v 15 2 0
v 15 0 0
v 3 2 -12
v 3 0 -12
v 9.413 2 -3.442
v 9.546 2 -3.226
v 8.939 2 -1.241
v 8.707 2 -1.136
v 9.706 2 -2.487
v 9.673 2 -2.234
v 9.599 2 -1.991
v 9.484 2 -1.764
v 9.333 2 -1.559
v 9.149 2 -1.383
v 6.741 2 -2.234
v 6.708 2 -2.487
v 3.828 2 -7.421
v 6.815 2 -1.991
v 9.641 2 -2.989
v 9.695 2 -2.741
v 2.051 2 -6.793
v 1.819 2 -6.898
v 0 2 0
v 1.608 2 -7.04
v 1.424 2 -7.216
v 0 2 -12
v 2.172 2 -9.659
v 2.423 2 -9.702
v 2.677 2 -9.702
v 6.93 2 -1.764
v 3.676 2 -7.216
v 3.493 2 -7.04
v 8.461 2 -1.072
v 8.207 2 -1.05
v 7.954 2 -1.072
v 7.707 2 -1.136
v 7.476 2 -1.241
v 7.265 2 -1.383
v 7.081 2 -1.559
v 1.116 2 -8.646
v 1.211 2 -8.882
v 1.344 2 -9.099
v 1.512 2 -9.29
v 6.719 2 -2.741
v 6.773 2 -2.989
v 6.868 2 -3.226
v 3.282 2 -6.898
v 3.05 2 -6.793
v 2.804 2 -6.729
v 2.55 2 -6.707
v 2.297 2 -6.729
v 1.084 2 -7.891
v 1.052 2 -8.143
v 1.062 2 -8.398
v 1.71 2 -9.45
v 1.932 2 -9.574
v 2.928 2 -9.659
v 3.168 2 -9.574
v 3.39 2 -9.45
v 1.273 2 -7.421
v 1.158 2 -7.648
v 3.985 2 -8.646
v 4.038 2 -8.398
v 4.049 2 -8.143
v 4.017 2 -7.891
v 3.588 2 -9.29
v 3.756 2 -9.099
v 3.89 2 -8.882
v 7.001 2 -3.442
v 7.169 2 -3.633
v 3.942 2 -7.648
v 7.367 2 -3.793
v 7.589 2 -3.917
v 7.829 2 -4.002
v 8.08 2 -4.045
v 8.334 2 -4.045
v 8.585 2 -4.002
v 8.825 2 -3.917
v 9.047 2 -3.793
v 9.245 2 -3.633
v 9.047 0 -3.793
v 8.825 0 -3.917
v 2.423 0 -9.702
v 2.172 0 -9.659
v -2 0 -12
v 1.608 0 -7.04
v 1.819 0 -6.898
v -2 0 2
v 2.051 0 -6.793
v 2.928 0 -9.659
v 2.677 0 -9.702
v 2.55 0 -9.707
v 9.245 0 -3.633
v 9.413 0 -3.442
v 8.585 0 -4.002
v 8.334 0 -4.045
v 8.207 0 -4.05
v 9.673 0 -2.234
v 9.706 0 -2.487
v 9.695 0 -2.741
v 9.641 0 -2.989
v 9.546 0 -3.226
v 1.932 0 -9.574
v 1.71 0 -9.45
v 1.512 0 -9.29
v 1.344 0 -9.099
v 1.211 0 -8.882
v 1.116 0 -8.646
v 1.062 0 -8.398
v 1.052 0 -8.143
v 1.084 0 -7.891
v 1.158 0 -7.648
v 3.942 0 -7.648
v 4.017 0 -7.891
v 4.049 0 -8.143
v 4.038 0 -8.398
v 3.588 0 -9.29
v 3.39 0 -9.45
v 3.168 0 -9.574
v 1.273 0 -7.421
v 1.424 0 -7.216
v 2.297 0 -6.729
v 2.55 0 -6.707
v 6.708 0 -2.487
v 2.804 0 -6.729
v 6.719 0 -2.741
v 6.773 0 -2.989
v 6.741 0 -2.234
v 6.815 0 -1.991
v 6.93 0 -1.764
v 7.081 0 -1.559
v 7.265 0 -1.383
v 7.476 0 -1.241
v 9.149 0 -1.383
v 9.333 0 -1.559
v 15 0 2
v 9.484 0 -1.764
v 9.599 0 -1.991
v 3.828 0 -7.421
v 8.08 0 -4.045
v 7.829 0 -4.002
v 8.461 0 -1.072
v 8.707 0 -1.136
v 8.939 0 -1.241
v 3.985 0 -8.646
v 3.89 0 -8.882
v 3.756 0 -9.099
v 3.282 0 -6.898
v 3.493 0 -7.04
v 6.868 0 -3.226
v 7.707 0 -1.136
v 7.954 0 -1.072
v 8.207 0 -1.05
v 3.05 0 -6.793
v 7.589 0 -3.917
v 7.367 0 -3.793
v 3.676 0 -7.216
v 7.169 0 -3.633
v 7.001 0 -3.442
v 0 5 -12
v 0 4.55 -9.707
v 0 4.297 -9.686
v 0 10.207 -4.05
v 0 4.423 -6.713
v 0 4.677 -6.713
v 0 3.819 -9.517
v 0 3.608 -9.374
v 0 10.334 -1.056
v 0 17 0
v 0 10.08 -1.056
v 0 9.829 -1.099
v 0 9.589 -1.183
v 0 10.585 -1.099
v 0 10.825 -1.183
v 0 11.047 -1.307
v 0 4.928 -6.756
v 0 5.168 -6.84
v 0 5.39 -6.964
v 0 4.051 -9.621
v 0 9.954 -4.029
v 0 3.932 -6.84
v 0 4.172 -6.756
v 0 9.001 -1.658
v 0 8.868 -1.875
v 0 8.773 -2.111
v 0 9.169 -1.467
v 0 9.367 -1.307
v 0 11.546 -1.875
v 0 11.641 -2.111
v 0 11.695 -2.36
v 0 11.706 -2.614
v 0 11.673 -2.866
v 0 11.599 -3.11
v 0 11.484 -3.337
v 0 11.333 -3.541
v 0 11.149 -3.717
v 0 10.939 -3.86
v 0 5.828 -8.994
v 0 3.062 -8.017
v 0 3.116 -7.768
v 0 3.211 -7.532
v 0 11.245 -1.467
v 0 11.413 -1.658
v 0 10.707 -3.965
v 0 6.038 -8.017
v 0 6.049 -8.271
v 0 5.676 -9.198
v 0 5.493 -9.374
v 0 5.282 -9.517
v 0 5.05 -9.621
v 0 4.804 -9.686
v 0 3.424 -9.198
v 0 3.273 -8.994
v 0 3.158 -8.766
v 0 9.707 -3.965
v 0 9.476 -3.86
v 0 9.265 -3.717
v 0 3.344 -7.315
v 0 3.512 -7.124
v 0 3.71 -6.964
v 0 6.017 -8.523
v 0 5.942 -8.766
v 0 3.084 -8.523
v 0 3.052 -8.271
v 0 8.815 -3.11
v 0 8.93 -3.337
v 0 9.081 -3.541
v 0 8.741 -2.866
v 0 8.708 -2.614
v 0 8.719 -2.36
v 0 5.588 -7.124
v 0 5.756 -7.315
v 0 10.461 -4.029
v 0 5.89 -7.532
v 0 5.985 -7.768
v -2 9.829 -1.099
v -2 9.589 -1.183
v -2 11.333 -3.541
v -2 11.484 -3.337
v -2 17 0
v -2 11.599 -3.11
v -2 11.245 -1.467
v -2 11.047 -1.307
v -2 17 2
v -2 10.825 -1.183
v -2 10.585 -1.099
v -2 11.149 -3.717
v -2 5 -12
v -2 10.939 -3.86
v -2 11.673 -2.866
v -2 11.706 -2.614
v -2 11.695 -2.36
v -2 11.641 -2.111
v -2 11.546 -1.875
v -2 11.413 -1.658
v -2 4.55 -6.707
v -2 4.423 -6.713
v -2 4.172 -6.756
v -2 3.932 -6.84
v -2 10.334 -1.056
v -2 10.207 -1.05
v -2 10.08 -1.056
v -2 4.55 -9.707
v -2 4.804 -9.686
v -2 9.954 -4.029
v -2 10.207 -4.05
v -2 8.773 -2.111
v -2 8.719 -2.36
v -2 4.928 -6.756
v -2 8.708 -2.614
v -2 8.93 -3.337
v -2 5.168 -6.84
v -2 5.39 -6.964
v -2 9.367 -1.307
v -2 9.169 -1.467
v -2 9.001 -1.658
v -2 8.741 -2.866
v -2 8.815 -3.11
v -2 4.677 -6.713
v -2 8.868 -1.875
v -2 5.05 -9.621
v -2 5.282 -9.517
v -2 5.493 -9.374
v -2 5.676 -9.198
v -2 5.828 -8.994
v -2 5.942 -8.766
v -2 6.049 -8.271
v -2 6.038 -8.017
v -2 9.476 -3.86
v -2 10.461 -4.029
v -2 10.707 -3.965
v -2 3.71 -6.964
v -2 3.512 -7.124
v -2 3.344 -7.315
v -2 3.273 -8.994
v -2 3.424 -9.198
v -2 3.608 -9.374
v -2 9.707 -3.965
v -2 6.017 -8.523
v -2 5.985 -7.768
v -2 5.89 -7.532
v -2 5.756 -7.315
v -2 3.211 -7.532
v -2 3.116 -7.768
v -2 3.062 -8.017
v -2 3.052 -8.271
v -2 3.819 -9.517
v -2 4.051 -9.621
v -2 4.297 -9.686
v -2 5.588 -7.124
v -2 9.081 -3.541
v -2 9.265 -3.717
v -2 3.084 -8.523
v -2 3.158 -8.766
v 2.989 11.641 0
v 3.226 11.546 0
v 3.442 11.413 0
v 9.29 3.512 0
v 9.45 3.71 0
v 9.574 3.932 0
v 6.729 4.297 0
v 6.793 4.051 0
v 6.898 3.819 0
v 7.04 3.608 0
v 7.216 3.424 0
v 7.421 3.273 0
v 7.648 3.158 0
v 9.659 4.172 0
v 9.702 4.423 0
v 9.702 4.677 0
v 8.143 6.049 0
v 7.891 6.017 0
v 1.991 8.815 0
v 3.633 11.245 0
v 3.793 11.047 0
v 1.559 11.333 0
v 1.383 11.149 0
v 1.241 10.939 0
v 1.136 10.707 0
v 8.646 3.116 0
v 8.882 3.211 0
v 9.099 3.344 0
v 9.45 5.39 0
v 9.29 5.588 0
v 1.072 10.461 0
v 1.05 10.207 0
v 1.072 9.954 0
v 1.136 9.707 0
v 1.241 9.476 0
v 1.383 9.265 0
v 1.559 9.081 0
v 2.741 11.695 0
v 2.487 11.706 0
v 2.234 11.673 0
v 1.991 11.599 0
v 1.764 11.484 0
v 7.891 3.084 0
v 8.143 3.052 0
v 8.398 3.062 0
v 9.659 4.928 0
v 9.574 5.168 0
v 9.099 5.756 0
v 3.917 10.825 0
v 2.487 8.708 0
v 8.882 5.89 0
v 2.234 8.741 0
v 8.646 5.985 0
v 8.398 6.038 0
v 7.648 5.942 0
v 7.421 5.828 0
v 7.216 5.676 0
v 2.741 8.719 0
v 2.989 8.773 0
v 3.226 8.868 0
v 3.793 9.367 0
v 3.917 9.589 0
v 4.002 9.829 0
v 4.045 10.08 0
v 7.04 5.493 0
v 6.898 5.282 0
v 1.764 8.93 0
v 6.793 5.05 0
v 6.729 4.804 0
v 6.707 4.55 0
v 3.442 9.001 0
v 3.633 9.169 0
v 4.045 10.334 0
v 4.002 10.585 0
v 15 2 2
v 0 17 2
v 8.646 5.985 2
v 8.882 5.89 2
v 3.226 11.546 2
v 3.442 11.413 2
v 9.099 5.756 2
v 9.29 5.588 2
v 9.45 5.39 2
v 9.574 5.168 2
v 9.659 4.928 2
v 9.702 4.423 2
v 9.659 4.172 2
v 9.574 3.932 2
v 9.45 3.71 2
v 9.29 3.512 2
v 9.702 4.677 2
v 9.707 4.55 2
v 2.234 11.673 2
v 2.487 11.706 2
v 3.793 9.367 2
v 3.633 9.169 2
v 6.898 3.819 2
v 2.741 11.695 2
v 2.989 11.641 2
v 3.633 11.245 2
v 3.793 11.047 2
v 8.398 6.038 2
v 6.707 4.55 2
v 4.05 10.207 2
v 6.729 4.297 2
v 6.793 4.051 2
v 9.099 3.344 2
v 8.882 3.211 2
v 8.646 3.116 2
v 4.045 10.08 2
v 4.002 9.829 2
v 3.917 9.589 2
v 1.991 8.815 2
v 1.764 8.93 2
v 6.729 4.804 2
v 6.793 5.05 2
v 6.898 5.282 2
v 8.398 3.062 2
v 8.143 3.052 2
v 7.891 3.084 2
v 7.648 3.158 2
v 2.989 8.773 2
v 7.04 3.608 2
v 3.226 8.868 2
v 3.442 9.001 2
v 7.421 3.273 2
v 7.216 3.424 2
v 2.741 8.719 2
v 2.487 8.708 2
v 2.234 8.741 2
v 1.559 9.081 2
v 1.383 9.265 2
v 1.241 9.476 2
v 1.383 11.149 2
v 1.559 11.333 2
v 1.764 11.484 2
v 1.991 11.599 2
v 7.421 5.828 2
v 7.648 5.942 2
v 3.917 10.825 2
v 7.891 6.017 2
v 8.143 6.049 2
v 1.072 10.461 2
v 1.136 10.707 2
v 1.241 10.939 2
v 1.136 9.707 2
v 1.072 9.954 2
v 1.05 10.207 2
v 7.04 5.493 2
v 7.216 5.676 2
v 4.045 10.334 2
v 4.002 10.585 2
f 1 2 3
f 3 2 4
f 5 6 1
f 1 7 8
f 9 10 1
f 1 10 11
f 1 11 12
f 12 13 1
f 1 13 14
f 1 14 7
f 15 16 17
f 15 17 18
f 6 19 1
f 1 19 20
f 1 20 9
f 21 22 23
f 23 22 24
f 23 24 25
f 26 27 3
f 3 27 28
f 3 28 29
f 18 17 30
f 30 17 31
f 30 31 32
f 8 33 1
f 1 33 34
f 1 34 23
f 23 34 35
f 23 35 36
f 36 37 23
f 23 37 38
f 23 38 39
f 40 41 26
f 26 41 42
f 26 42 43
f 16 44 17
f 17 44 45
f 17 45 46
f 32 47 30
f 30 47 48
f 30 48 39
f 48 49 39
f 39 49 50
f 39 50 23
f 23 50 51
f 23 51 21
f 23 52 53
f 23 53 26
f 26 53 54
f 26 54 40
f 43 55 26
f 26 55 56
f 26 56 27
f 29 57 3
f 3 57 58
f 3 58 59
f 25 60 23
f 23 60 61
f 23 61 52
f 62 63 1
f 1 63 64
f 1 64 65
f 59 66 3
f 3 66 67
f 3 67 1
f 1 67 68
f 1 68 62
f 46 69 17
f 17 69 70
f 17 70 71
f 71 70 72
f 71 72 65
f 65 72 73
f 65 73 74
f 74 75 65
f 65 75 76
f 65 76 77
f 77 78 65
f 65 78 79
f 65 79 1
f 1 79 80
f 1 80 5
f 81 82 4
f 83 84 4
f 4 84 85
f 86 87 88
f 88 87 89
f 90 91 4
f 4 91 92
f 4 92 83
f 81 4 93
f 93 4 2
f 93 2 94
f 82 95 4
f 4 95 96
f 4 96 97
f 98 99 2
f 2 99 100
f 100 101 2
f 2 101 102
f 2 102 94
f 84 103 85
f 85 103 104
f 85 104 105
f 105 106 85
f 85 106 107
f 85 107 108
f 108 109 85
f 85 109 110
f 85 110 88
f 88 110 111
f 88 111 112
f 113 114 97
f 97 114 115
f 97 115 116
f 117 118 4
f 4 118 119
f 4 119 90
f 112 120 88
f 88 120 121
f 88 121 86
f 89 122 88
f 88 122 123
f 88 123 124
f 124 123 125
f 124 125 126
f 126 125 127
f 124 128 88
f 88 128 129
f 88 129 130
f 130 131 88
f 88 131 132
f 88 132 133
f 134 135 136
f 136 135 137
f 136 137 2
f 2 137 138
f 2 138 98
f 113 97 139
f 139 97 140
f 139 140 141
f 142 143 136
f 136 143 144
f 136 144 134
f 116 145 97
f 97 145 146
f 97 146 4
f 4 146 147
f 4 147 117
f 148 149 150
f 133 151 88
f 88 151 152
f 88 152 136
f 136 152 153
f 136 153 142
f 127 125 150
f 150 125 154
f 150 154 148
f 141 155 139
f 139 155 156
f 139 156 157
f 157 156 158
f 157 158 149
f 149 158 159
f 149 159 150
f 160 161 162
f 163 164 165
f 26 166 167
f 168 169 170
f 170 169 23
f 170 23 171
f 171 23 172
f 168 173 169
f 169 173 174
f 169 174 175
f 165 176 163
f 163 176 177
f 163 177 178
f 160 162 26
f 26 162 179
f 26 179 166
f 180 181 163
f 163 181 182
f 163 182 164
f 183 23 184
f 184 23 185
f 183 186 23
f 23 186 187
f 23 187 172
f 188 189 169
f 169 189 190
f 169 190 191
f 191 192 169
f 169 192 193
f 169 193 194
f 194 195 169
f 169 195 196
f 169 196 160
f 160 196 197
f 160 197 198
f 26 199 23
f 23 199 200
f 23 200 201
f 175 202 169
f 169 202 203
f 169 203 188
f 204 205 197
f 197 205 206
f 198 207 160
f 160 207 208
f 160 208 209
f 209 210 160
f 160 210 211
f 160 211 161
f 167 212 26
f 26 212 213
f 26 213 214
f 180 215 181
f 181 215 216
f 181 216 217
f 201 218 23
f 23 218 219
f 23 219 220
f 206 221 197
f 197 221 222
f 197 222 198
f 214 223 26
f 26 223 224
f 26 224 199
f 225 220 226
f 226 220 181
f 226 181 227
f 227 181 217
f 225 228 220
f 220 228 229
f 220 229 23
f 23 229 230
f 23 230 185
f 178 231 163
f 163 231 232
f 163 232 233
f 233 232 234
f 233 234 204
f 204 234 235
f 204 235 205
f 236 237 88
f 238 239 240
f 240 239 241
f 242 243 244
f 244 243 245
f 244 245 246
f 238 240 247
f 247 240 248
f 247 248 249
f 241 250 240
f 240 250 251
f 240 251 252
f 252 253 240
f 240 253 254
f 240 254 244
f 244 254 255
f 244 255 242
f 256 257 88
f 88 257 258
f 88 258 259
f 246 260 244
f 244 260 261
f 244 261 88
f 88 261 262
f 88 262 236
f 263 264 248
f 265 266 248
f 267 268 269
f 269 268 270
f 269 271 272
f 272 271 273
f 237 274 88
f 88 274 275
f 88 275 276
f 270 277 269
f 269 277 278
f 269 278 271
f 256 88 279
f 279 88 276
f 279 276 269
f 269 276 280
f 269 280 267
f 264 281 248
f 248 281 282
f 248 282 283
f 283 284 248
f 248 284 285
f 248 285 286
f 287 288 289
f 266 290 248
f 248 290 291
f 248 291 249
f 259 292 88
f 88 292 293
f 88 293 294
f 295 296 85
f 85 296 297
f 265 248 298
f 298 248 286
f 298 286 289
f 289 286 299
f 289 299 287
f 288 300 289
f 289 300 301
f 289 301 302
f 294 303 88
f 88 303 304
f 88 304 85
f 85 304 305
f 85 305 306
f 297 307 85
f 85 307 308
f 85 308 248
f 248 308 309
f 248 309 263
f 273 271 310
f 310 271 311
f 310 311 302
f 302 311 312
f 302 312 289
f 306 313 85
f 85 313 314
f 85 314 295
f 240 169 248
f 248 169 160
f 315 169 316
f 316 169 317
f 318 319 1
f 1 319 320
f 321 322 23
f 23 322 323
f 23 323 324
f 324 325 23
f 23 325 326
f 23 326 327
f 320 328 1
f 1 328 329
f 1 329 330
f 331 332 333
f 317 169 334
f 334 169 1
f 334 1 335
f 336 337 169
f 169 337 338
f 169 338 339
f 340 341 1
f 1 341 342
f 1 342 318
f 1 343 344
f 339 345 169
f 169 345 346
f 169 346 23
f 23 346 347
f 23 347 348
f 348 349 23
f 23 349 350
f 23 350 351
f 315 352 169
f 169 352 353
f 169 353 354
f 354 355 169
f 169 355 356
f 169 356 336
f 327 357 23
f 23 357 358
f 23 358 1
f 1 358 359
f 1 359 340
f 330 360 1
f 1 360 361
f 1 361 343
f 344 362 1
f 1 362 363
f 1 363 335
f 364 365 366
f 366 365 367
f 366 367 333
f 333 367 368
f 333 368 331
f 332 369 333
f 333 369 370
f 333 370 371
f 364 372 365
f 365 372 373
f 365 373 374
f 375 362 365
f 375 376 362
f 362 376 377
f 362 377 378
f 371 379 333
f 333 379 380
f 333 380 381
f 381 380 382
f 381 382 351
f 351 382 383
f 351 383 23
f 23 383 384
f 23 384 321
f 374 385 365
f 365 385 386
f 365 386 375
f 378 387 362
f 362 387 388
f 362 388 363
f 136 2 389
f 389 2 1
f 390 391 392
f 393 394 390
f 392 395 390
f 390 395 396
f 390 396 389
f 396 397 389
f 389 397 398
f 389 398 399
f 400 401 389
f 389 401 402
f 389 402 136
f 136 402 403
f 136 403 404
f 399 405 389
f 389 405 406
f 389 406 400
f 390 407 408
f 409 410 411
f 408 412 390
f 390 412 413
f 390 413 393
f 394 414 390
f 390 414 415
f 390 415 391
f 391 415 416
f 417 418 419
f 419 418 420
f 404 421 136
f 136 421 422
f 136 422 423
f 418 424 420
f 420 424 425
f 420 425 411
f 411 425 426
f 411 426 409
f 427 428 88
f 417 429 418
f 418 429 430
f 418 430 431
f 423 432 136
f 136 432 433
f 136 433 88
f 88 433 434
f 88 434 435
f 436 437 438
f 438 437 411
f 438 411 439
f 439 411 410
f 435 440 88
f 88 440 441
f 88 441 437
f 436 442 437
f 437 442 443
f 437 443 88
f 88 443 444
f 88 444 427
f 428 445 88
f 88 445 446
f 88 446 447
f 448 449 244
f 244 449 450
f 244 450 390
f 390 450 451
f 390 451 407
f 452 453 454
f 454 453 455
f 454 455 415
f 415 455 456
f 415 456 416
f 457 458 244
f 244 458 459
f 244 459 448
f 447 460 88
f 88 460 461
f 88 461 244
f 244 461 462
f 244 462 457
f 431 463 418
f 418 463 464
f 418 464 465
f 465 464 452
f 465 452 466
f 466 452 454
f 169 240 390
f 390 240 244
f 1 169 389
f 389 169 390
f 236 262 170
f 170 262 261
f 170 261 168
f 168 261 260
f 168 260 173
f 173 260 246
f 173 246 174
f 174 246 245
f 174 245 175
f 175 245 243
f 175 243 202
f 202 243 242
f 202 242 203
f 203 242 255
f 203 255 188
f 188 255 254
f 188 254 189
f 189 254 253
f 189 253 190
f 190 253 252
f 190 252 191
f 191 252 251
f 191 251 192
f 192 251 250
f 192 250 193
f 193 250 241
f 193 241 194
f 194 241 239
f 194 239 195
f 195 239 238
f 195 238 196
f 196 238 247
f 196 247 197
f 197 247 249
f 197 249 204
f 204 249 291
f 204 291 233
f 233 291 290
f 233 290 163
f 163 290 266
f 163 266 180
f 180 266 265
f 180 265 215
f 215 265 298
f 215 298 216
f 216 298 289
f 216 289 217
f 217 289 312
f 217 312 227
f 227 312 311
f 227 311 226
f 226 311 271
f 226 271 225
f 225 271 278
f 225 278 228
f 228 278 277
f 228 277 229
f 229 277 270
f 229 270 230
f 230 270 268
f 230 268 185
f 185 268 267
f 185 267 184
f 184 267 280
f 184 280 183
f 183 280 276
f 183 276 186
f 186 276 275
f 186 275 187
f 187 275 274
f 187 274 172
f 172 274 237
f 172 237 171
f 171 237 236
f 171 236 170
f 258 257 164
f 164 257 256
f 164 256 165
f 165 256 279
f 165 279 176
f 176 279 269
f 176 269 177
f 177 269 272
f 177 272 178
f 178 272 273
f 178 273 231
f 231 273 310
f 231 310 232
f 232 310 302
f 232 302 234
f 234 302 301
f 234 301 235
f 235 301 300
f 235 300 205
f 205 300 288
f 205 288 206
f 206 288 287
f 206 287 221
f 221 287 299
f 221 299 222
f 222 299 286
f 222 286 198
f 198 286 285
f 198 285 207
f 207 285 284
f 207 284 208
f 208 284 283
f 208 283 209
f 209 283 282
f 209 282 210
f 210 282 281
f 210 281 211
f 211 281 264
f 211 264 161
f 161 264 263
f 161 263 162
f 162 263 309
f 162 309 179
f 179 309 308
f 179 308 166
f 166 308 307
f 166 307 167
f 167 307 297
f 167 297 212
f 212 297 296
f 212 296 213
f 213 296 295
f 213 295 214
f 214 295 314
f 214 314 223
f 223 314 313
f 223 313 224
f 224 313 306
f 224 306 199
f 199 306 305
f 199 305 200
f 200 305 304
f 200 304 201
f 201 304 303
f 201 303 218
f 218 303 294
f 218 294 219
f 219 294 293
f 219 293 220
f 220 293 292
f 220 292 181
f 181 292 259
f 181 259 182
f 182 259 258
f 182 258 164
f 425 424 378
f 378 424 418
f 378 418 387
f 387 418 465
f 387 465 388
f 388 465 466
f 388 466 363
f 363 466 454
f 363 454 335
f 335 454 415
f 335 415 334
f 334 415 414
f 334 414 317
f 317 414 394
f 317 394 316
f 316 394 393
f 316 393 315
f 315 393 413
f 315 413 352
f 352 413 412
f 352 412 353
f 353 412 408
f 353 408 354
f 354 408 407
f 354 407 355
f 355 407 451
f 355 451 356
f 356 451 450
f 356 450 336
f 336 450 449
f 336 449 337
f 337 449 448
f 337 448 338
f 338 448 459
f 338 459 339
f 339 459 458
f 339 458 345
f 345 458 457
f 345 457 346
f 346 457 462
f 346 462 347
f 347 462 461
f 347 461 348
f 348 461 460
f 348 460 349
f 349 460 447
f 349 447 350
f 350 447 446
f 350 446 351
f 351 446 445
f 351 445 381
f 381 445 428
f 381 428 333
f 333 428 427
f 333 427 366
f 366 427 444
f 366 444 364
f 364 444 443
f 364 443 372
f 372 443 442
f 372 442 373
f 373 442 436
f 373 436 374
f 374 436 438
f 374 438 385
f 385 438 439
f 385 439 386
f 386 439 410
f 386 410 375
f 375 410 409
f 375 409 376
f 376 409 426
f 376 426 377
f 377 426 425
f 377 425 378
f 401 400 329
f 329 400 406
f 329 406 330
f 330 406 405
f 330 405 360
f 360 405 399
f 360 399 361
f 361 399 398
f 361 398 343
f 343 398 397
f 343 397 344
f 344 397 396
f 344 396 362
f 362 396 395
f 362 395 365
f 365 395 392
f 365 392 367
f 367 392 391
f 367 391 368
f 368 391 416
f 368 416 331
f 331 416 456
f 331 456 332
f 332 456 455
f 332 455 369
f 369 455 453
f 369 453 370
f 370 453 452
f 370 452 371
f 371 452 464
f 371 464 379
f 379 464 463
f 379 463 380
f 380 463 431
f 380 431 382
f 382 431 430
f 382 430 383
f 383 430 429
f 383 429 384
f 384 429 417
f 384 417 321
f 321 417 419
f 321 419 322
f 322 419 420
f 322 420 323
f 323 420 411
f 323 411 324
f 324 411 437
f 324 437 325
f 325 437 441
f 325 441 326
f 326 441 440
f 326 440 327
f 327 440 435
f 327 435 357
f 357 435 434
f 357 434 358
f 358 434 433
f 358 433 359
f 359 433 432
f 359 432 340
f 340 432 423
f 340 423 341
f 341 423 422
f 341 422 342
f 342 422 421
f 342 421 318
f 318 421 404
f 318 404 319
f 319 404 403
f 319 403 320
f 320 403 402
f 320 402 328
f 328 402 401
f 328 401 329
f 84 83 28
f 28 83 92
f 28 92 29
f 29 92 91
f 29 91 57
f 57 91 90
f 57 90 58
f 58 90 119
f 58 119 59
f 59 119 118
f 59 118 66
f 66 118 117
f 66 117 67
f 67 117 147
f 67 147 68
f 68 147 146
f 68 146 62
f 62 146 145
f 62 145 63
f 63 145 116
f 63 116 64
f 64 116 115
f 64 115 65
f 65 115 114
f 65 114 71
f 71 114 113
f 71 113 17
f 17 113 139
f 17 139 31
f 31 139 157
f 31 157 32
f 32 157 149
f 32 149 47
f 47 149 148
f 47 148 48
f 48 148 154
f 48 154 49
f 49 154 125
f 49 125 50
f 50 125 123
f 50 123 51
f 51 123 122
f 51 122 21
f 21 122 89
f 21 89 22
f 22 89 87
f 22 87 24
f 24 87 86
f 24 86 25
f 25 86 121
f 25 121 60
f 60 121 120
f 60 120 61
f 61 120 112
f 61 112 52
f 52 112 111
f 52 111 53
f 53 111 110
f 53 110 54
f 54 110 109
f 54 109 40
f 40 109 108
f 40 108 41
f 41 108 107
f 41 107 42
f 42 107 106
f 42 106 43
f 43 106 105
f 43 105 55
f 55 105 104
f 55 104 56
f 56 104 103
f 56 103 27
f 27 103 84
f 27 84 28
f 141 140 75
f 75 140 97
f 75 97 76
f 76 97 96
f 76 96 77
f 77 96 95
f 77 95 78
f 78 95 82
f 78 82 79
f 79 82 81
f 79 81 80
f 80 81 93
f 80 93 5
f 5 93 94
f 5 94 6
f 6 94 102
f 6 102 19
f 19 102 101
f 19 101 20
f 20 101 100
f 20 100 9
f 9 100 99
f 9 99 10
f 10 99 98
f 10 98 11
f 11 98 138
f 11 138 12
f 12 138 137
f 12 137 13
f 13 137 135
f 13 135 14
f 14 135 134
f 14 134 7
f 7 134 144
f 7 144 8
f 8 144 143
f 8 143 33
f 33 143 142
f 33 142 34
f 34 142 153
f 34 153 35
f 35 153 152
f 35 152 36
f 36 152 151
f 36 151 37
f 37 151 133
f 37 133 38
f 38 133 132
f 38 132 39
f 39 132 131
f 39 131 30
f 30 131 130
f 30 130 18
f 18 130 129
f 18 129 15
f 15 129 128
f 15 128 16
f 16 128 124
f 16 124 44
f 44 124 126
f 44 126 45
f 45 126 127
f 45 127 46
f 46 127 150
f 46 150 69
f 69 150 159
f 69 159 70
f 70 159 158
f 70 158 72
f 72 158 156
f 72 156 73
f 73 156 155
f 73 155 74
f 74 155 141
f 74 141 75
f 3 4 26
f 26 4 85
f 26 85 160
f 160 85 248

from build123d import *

# Parameters (mm, degrees)
BOSS_EXTRUDE1_DEPTH      = 2
BOSS_EXTRUDE2_DEPTH      = 15
BOSS_EXTRUDE2_DEPTH_BACK = 2
CUT_EXTRUDE1_DEPTH       = 15
CUT_EXTRUDE2_DEPTH       = 15
SKETCH5_R                = 1.5
CUT_EXTRUDE3_DEPTH       = 15
SKETCH6_R                = 1.5
CUT_EXTRUDE4_DEPTH       = 15
SKETCH7_R                = 1.5
CUT_EXTRUDE5_DEPTH       = 15
IZIM1_W                  = 17
IZIM1_H                  = 17
KES_EKSTR_ZYON1_DEPTH    = 3


with BuildPart() as part:
    # Sketch1 → Boss-Extrude1 (new body)
    with BuildSketch(Plane(origin=(0, 0, 0), x_dir=(1, 0, 0), z_dir=(0, 1, 0))):
        Polygon((0, 15), (15, 0), (0, 0), align=None)
    extrude(amount=BOSS_EXTRUDE1_DEPTH)

    # Sketch2 → Boss-Extrude2 (add, two sides: drawn at the far end of the back side and taken through both)
    with BuildSketch(Plane(origin=(0, 2, 0), x_dir=(1, 0, 0), z_dir=(0, 1, 0)).offset(-BOSS_EXTRUDE2_DEPTH_BACK)):
        Polygon((-2, -2), (15, -2), (15, 0), (0, 0), (0, 15), (-2, 15), align=None)
    extrude(amount=BOSS_EXTRUDE2_DEPTH + BOSS_EXTRUDE2_DEPTH_BACK)

    # Sketch3 → Cut-Extrude1 (cut)
    with BuildSketch(Plane(origin=(0, 0, 0), x_dir=(0, 0, -1), z_dir=(1, 0, 0))):
        Polygon((15, 2), (0, 17), (15, 17), align=None)
    extrude(amount=-CUT_EXTRUDE1_DEPTH, mode=Mode.SUBTRACT)

    # Sketch4 → Cut-Extrude2 (cut)
    with BuildSketch(Plane(origin=(0, 0, 0), x_dir=(-1, 0, 0), z_dir=(0, 0, -1))):
        Polygon((0, 17), (-15, 2), (-15, 17), align=None)
    extrude(amount=-CUT_EXTRUDE2_DEPTH, mode=Mode.SUBTRACT)

    # Sketch5 → Cut-Extrude3 (cut)
    with BuildSketch(Plane(origin=(0, 0, 0), x_dir=(0, 0, -1), z_dir=(1, 0, 0))):
        with Locations((2.550252532, 10.207106781)):
            Circle(SKETCH5_R)
        with Locations((8.207106781, 4.550252532)):
            Circle(SKETCH5_R)
    extrude(amount=-CUT_EXTRUDE3_DEPTH, mode=Mode.SUBTRACT)

    # Sketch6 → Cut-Extrude4 (cut)
    with BuildSketch(Plane(origin=(0, 0, 0), x_dir=(-1, 0, 0), z_dir=(0, 0, -1))):
        with Locations((-2.550252532, 10.207106781)):
            Circle(SKETCH6_R)
        with Locations((-8.207106781, 4.550252532)):
            Circle(SKETCH6_R)
    extrude(amount=-CUT_EXTRUDE4_DEPTH, mode=Mode.SUBTRACT)

    # Sketch7 → Cut-Extrude5 (cut)
    with BuildSketch(Plane(origin=(0, 2, 0), x_dir=(1, 0, 0), z_dir=(0, 1, 0))):
        with Locations(Location((2.550252532, 8.207106781, 0), (0, 0, 270))):
            Circle(SKETCH7_R)
        with Locations(Location((8.207106781, 2.550252532, 0), (0, 0, 270))):
            Circle(SKETCH7_R)
    extrude(amount=-CUT_EXTRUDE5_DEPTH, mode=Mode.SUBTRACT)

    # Çizim1 → Kes-Ekstrüzyon1 (cut)
    with BuildSketch(Plane(origin=(0, 0, -15), x_dir=(-1, 0, 0), z_dir=(0, 0, -1))):
        with Locations((-6.5, 8.5)):
            Rectangle(IZIM1_W, IZIM1_H)
    extrude(amount=-KES_EKSTR_ZYON1_DEPTH, mode=Mode.SUBTRACT)


solid = part.part
